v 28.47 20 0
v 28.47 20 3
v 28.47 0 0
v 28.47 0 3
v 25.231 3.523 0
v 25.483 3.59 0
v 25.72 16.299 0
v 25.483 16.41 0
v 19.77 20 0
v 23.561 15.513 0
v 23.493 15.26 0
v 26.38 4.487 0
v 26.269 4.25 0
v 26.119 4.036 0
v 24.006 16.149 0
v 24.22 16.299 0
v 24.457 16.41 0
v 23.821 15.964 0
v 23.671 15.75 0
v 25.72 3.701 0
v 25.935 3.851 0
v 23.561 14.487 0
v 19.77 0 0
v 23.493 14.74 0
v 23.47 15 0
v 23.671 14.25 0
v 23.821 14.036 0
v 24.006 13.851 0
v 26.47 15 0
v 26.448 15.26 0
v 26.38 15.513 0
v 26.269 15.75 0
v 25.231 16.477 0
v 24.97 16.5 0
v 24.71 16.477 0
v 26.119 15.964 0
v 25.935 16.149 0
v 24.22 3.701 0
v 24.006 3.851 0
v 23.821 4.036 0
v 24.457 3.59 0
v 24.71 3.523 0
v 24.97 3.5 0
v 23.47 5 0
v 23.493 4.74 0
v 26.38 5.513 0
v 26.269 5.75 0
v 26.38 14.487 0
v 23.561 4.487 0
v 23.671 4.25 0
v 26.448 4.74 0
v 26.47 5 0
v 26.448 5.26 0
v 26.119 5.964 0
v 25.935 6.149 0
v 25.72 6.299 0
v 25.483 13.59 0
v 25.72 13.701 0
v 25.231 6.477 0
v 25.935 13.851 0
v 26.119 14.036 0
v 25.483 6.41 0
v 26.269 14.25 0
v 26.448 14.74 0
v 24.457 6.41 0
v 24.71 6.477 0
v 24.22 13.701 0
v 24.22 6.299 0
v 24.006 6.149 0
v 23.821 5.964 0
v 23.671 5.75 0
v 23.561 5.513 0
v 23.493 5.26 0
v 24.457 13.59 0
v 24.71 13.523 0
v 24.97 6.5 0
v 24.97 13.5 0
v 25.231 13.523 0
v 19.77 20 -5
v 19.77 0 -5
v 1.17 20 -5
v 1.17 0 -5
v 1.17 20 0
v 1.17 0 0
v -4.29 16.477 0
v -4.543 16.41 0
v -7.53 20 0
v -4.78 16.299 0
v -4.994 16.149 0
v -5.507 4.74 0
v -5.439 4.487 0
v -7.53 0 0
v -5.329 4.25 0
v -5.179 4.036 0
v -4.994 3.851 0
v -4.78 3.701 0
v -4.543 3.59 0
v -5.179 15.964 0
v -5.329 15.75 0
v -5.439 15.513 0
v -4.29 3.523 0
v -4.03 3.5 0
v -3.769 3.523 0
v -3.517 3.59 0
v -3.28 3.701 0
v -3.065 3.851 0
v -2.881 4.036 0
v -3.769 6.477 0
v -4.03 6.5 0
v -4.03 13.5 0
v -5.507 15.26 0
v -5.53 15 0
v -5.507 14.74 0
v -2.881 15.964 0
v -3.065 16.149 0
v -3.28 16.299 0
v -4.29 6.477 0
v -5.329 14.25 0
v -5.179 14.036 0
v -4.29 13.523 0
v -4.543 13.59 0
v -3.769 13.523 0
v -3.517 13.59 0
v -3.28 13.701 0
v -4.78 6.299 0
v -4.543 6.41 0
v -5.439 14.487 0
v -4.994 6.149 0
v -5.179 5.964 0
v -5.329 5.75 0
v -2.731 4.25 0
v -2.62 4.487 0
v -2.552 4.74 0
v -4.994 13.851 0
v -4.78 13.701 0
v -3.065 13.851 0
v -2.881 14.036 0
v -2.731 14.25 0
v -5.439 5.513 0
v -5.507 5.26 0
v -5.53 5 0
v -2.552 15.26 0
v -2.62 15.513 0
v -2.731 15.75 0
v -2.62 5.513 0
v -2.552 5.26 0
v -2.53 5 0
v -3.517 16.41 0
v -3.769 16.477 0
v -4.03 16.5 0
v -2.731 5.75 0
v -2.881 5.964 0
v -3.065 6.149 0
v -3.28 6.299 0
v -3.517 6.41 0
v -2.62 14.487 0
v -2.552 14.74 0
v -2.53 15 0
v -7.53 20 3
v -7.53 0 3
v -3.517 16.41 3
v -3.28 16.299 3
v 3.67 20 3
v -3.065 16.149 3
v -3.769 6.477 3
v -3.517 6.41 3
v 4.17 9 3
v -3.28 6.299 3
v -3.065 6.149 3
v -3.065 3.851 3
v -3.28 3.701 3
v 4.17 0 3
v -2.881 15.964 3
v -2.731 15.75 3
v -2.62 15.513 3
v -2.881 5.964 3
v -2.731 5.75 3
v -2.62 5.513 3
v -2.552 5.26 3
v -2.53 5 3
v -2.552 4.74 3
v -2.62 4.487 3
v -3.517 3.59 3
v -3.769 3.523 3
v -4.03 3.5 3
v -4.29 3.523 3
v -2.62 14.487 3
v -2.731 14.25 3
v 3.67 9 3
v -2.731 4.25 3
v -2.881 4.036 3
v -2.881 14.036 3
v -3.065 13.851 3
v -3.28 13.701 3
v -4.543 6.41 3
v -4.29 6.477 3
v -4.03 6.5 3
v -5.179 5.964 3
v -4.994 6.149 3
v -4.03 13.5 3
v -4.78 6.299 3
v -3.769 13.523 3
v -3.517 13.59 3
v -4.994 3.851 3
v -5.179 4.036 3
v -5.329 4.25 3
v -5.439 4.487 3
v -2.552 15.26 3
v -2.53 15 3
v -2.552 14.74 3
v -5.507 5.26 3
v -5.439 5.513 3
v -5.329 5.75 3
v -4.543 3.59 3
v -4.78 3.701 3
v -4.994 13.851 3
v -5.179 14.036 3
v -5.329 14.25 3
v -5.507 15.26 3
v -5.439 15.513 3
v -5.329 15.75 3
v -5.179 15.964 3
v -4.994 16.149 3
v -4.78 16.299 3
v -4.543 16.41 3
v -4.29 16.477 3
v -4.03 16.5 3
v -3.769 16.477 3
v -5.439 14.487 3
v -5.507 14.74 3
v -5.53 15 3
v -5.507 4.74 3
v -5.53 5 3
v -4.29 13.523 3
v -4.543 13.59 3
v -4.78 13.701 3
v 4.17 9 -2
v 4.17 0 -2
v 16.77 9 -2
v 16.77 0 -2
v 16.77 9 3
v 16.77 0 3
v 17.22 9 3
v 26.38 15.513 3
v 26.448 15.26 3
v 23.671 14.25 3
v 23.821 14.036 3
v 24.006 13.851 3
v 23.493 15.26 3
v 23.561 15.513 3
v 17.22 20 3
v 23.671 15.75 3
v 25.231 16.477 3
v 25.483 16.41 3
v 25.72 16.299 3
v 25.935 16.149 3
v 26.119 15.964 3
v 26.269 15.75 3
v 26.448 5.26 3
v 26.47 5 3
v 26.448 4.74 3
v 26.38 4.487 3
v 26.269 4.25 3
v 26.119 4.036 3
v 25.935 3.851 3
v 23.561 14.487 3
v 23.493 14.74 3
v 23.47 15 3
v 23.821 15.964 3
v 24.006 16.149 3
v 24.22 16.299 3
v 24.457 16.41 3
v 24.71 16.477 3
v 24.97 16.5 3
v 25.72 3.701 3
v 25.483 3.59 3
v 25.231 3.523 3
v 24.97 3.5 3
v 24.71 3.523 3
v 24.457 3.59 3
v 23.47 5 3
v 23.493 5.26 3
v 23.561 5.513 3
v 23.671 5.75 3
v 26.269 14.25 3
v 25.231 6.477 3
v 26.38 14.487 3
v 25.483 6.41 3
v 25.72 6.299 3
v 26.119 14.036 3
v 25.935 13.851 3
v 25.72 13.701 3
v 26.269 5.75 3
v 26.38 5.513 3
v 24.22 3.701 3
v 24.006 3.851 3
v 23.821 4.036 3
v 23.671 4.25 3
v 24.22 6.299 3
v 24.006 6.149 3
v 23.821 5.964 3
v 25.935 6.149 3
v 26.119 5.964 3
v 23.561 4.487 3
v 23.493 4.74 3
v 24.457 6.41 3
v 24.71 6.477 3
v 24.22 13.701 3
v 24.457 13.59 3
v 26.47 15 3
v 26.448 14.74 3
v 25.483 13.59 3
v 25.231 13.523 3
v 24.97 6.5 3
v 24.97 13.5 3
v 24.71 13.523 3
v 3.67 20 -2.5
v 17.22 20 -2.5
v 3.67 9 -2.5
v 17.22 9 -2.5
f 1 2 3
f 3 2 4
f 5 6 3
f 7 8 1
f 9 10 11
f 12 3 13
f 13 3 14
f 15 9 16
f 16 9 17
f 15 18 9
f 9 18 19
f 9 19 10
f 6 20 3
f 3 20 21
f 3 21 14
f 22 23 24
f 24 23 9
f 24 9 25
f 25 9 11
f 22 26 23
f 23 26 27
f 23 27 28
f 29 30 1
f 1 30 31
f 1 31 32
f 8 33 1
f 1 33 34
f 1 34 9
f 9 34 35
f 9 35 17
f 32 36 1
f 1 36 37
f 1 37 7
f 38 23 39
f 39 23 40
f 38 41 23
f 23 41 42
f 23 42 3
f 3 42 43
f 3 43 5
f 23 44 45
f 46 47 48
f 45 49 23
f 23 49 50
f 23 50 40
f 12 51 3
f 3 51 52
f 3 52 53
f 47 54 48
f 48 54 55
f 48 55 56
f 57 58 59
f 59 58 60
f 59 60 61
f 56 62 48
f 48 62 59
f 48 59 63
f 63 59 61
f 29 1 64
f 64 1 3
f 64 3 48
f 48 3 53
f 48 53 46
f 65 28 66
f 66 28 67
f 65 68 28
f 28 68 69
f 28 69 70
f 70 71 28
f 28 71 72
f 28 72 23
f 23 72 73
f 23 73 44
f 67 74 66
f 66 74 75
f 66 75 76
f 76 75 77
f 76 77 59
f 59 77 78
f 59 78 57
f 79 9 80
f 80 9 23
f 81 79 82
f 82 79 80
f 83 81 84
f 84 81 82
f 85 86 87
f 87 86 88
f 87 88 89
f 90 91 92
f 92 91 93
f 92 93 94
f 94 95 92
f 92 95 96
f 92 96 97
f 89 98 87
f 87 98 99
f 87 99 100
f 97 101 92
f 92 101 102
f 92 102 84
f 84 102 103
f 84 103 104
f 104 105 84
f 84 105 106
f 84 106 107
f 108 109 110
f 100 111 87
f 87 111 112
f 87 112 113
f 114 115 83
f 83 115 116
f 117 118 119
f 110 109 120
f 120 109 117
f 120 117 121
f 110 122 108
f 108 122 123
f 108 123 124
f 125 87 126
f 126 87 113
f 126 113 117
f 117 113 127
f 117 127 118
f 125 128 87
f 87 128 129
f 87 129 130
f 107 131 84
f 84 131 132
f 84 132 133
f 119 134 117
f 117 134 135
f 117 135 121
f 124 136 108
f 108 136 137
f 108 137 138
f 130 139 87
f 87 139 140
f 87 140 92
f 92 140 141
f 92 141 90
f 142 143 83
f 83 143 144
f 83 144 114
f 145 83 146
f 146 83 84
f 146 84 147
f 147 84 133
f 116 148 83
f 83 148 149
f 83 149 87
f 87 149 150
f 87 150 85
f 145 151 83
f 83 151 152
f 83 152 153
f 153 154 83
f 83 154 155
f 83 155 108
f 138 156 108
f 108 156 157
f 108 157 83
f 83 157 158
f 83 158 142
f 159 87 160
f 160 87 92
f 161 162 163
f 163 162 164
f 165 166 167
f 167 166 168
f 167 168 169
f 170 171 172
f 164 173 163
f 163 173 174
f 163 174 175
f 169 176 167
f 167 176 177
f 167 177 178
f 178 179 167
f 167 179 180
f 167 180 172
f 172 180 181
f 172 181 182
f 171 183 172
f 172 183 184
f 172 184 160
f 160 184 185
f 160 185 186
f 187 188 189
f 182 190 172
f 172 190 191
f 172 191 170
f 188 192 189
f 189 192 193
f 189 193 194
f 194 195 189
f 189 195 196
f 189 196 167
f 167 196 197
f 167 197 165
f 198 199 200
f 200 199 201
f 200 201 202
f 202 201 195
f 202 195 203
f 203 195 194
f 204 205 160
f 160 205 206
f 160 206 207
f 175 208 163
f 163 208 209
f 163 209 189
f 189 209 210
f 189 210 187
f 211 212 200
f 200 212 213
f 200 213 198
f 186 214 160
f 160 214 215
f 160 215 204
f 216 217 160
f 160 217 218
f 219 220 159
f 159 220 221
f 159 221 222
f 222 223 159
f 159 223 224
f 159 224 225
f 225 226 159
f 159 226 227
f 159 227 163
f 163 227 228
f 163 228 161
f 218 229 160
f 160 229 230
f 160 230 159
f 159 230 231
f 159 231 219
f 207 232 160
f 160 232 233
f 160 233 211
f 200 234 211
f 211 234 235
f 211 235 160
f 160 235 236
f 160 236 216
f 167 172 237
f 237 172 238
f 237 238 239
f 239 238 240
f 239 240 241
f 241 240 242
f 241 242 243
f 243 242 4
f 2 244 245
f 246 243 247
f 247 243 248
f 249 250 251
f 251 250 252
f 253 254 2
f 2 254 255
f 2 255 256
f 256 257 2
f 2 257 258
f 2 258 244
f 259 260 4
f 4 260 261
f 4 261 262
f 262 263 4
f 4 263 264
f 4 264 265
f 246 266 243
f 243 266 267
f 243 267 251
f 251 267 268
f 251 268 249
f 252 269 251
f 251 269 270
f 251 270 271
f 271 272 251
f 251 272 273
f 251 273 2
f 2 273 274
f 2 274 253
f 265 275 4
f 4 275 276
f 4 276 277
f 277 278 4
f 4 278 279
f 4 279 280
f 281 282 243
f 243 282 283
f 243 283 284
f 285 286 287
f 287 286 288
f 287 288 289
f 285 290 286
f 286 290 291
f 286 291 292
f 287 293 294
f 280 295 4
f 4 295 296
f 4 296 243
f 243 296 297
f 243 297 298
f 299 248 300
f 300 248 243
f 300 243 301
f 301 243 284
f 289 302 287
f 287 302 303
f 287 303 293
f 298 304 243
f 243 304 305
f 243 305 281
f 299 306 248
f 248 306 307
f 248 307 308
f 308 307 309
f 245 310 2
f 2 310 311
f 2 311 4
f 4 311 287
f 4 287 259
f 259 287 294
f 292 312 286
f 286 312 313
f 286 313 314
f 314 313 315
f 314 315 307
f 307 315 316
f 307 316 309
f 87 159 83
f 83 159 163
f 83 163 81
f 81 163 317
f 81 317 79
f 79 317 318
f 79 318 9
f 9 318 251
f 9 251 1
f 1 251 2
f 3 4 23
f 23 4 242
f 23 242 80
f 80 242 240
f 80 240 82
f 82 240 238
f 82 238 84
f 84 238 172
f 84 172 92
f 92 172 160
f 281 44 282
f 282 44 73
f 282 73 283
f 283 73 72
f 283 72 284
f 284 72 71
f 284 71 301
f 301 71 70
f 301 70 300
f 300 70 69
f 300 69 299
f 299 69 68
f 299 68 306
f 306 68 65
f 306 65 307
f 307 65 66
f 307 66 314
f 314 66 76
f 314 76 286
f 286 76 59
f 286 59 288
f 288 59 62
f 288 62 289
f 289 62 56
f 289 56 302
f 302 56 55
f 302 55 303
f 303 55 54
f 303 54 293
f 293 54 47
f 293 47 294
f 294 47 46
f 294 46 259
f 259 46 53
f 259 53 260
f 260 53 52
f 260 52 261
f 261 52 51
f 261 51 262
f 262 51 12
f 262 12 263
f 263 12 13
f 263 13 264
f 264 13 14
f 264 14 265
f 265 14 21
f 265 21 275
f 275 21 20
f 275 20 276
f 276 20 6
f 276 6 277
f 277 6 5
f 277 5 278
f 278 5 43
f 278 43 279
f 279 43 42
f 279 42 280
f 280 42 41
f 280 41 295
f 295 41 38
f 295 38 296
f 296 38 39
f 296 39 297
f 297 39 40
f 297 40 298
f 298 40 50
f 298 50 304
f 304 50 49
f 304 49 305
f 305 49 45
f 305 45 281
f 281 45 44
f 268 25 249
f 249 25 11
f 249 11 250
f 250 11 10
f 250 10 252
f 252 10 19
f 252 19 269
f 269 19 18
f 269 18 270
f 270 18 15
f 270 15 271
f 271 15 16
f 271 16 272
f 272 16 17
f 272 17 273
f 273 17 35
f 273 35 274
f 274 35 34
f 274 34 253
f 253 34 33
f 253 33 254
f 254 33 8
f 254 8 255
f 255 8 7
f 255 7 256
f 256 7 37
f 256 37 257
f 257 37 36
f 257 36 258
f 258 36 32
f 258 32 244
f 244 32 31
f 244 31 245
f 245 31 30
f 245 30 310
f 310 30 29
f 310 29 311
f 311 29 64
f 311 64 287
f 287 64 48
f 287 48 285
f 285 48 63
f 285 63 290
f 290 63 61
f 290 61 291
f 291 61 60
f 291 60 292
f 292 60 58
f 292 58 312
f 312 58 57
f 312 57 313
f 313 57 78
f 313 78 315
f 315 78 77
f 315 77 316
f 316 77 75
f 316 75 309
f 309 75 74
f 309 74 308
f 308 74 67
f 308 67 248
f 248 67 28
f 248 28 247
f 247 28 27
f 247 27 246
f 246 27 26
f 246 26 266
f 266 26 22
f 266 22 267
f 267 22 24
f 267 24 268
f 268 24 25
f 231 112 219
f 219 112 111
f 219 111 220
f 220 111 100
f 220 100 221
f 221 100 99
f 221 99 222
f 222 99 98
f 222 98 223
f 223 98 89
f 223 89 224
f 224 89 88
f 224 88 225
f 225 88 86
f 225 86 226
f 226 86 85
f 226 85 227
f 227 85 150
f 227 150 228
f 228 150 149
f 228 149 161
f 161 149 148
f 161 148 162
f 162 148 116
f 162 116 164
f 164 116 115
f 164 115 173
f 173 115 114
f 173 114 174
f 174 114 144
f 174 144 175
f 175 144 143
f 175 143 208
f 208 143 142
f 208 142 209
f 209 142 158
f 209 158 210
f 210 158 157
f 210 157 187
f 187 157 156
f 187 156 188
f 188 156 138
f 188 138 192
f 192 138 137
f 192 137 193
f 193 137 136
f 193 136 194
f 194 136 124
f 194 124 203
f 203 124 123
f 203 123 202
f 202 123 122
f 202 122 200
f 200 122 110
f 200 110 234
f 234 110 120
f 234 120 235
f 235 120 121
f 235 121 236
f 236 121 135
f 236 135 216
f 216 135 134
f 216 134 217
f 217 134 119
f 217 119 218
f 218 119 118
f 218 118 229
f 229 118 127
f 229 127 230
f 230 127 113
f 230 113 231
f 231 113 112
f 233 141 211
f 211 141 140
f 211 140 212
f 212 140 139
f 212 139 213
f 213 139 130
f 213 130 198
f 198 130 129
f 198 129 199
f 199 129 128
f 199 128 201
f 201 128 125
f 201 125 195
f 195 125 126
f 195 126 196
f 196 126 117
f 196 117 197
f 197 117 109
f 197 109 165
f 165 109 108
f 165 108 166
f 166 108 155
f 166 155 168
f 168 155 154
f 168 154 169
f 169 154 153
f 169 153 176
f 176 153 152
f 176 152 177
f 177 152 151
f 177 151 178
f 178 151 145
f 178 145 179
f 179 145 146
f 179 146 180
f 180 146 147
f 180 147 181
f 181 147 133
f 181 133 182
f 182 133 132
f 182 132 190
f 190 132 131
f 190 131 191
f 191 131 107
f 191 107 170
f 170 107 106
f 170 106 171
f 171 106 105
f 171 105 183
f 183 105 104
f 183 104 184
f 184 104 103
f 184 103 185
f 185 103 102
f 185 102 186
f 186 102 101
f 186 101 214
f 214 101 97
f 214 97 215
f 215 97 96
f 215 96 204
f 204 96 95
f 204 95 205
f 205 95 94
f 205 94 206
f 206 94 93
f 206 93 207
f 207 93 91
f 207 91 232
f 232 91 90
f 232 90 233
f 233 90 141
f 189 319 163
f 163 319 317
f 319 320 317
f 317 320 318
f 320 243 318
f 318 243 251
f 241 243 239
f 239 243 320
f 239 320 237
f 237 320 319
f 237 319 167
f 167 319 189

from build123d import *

# Parameters (mm, degrees)
BOSS_EXTRUDE1_DEPTH = 20
SKETCH2_R           = 1.5
CUT_EXTRUDE1_DEPTH  = 16
CUT_EXTRUDE2_DEPTH  = 11


with BuildPart() as part:
    # Sketch1 → Boss-Extrude1 (new body)
    with BuildSketch(Plane(origin=(0, 0, 0), x_dir=(1, 0, 0), z_dir=(0, 1, 0))):
        Polygon((16.770422535, -3), (28.470422535, -3), (28.470422535, 0), (19.770422535, 0), (19.770422535, 5), (1.170422535, 5), (1.170422535, 0), (-7.529577465, 0), (-7.529577465, -3), (4.170422535, -3), (4.170422535, 2), (16.770422535, 2), align=None)
    extrude(amount=BOSS_EXTRUDE1_DEPTH)

    # Sketch2 → Cut-Extrude1 (cut)
    with BuildSketch(Plane(origin=(0, 0, 0), x_dir=(-1, 0, 0), z_dir=(0, 0, -1))):
        with Locations((4.029577465, 15)):
            Circle(SKETCH2_R)
        with Locations((4.029577465, 5)):
            Circle(SKETCH2_R)
        with Locations((-24.970422535, 5)):
            Circle(SKETCH2_R)
        with Locations((-24.970422535, 15)):
            Circle(SKETCH2_R)
    extrude(amount=-CUT_EXTRUDE1_DEPTH, mode=Mode.SUBTRACT)

    # Sketch3 → Cut-Extrude2 (cut)
    with BuildSketch(Plane(origin=(0, 20, 0), x_dir=(1, 0, 0), z_dir=(0, 1, 0))):
        Polygon((4.170422535, -3), (4.170422535, 2), (16.770422535, 2), (16.770422535, -3), (17.220422535, -3), (17.220422535, 2.5), (3.670422535, 2.5), (3.670422535, -3), align=None)
    extrude(amount=-CUT_EXTRUDE2_DEPTH, mode=Mode.SUBTRACT)


solid = part.part
